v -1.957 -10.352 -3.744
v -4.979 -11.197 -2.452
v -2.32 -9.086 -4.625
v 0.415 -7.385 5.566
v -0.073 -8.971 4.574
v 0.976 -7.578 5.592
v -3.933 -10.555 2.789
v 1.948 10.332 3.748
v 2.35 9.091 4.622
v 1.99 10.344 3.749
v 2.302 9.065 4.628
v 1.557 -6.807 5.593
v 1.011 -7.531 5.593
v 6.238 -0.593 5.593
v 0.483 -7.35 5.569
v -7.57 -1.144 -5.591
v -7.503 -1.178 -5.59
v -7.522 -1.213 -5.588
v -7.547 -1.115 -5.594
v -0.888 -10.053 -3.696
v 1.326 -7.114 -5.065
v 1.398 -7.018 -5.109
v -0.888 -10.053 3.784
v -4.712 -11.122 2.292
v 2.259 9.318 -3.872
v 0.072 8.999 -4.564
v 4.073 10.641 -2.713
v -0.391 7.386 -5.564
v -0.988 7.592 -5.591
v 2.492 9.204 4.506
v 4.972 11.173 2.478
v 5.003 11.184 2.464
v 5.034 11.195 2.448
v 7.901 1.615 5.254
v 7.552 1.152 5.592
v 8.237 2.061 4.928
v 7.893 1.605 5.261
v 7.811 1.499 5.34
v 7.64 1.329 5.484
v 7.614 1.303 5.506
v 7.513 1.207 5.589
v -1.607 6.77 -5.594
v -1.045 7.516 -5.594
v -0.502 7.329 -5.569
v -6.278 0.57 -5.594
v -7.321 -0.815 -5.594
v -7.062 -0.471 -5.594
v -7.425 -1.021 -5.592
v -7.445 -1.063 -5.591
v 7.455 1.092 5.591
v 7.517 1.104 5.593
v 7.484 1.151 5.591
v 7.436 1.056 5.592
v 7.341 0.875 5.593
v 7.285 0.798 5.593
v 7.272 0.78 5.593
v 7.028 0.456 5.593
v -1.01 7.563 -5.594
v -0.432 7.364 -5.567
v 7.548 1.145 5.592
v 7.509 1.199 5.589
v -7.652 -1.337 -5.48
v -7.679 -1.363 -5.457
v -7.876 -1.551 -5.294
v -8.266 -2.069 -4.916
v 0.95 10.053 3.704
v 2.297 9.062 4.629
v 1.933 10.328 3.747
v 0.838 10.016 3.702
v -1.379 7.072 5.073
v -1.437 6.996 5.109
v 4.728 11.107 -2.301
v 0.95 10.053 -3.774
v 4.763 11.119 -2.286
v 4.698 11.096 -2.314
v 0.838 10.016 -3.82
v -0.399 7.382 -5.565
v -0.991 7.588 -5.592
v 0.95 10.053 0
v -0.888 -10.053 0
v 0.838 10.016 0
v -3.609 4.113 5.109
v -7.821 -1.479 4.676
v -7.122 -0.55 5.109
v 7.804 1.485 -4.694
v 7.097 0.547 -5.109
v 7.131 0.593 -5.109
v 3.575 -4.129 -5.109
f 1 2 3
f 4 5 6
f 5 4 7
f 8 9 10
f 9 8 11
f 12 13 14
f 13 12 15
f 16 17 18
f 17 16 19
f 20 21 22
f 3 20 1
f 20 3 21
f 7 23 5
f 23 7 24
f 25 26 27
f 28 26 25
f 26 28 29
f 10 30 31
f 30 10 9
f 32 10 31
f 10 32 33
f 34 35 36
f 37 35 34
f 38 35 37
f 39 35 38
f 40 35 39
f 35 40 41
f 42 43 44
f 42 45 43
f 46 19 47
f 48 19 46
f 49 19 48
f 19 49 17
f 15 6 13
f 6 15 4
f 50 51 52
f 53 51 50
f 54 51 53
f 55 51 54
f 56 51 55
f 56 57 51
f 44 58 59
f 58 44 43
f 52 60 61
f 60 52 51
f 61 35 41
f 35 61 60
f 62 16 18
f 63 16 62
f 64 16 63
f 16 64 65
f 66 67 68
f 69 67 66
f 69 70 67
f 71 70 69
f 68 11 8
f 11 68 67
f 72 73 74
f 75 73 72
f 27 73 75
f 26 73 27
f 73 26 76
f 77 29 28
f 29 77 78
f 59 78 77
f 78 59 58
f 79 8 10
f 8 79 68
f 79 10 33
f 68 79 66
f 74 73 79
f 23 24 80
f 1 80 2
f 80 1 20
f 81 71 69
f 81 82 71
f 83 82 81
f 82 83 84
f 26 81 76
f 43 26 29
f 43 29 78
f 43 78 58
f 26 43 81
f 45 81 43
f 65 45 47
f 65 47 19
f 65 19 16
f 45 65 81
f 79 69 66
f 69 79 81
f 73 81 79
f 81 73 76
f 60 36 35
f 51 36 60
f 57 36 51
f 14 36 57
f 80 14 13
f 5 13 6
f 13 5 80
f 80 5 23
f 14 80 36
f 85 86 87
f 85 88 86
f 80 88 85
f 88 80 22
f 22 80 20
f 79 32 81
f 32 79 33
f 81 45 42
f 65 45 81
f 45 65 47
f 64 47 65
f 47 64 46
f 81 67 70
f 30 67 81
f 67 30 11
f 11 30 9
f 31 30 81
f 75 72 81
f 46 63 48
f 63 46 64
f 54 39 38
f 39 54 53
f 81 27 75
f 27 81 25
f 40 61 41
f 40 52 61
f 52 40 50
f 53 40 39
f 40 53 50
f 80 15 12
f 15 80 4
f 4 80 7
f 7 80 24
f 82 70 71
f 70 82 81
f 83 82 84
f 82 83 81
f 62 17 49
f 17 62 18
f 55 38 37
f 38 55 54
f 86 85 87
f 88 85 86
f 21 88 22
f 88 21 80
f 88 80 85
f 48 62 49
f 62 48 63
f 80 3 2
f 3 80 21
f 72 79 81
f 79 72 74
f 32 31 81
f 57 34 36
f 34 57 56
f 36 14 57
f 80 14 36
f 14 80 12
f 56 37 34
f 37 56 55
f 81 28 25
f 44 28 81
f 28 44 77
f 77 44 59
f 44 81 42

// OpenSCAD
// Auto-generated OpenSCAD file

    inner_points = 10*[[0.5722599249733294, 0.7596229824439242, -1.3090169943749441], [-0.5722599249733294, -0.7596229824439242, 1.3090169943749441], [1.4164956880340376e-14, -3.2423688378582613e-15, -1.618033988749895], [-0.9259360090062975, -1.2290958042298372, 0.49999999999999434], [0.9259360090062975, 1.2290958042298372, -0.49999999999999434], [-1.4164956880340376e-14, 3.2423688378582613e-15, 1.618033988749895], [-0.5722599249733062, -0.7596229824439293, -1.309016994374951], [-0.9259360090062885, -1.2290958042298392, -0.5000000000000058], [0.9259360090062885, 1.2290958042298392, 0.5000000000000058], [0.5722599249733062, 0.7596229824439293, 1.309016994374951], [-0.8340004290313582, -0.2333308474580752, -0.5000000000000069], [0.8340004290313582, 0.2333308474580752, 0.5000000000000069], [-0.26174050405803767, 0.526292134985851, -0.8090169943749508], [-0.834000429031367, -0.23333084745807323, 0.4999999999999932], [0.834000429031367, 0.23333084745807323, -0.4999999999999932], [0.26174050405803767, -0.526292134985851, 0.8090169943749508], [0.2617405040580519, -0.5262921349858541, -0.8090169943749441], [-0.0919355799749304, -0.9957649567717641, 1.1379786002407855e-15], [0.0919355799749304, 0.9957649567717641, -1.1379786002407855e-15], [-0.2617405040580519, 0.5262921349858541, 0.8090169943749441]];

    outer_points = 10*[[-0.028802887989037716, -1.6172054580711597, 0.04302195693174079], [0.028802887989037716, 1.6172054580711597, -0.04302195693174079], [0.9269826837913786, -1.324345589833875, 0.06961214971823448], [0.9735867355317978, 1.2923478081171045, 1.1611401438127444e-06], [-0.9735867355317978, -1.2923478081171045, -1.1611401438127444e-06], [-0.9269826837913786, 1.324345589833875, -0.06961214971823448], [1.5286923773460845, -0.5256307191310772, 0.06961286734230898], [1.5464935410974658, 0.4738572207487425, 0.04302383569595902], [-1.5464935410974658, -0.4738572207487425, -0.04302383569595902], [-1.5286923773460845, 0.5256307191310772, -0.06961286734230898], [0.8309648425538894, 0.0, 0.556324932426536], [-0.8309648425538894, 0.0, -0.556324932426536], [0.2292551489991834, -0.7987148707027978, 0.5563242148024615], [0.25805803698822116, 0.8184905873683619, 0.5133022578707207], [-0.25805803698822116, -0.8184905873683619, -0.5133022578707207], [-0.2292551489991834, 0.7987148707027978, -0.5563242148024615], [0.6977275347921952, -0.5256307191310772, -0.486712065084227], [0.7155286985435765, 0.4738572207487425, -0.5133010967305769], [-0.7155286985435765, -0.4738572207487425, 0.5133010967305769], [-0.6977275347921952, 0.5256307191310772, 0.486712065084227]];

    // Convex hull for inner set (I)
    module inner_hull() {
        hull() {
            for (p = inner_points) {
                translate(p) sphere(r=0.1);
            }
        }
    }

    // Convex hull for outer set (O) minus inner hull (O \ I)
    module outer_minus_inner() {
        difference() {
            hull() {
                for (p = outer_points) {
                    translate(p) sphere(r=0.1);
                }
            }
            inner_hull(); // Subtract inner hull
        }
    }

    // Convex hull for outer set (O) minus all translated inner hulls
    module outer_minus_AllTranslationInner() {
        difference() {
            hull() {
                for (p = outer_points) {
                    translate(p) sphere(r=0.1);
                }
            }
            hull() {
                translate([0,0,50]) inner_hull();
                translate([0,0,-50]) inner_hull();
            }; // Subtract translated inner hulls
        }
    }

    // Difference between outer_minus_inner and outer_minus_AllTranslationInner
    module outer_minus_inner_diff() {
        difference() {
            // Outer minus inner
            difference() {
                hull() {
                    for (p = outer_points) {
                        translate(p) sphere(r=0.1);
                    }
                }
                inner_hull();
            }

            // Subtract Outer minus AllTranslationInner
            difference() {
                hull() {
                    for (p = outer_points) {
                        translate(p) sphere(r=0.1);
                    }
                }
                hull() {
                    translate([0,0,50]) inner_hull();
                    translate([0,0,-50]) inner_hull();
                };
            }
        }
    }

    // Rendering all with colors applied
    color([1, 1, 0, 1]) outer_minus_inner_diff(); // Opaque yellow
    
